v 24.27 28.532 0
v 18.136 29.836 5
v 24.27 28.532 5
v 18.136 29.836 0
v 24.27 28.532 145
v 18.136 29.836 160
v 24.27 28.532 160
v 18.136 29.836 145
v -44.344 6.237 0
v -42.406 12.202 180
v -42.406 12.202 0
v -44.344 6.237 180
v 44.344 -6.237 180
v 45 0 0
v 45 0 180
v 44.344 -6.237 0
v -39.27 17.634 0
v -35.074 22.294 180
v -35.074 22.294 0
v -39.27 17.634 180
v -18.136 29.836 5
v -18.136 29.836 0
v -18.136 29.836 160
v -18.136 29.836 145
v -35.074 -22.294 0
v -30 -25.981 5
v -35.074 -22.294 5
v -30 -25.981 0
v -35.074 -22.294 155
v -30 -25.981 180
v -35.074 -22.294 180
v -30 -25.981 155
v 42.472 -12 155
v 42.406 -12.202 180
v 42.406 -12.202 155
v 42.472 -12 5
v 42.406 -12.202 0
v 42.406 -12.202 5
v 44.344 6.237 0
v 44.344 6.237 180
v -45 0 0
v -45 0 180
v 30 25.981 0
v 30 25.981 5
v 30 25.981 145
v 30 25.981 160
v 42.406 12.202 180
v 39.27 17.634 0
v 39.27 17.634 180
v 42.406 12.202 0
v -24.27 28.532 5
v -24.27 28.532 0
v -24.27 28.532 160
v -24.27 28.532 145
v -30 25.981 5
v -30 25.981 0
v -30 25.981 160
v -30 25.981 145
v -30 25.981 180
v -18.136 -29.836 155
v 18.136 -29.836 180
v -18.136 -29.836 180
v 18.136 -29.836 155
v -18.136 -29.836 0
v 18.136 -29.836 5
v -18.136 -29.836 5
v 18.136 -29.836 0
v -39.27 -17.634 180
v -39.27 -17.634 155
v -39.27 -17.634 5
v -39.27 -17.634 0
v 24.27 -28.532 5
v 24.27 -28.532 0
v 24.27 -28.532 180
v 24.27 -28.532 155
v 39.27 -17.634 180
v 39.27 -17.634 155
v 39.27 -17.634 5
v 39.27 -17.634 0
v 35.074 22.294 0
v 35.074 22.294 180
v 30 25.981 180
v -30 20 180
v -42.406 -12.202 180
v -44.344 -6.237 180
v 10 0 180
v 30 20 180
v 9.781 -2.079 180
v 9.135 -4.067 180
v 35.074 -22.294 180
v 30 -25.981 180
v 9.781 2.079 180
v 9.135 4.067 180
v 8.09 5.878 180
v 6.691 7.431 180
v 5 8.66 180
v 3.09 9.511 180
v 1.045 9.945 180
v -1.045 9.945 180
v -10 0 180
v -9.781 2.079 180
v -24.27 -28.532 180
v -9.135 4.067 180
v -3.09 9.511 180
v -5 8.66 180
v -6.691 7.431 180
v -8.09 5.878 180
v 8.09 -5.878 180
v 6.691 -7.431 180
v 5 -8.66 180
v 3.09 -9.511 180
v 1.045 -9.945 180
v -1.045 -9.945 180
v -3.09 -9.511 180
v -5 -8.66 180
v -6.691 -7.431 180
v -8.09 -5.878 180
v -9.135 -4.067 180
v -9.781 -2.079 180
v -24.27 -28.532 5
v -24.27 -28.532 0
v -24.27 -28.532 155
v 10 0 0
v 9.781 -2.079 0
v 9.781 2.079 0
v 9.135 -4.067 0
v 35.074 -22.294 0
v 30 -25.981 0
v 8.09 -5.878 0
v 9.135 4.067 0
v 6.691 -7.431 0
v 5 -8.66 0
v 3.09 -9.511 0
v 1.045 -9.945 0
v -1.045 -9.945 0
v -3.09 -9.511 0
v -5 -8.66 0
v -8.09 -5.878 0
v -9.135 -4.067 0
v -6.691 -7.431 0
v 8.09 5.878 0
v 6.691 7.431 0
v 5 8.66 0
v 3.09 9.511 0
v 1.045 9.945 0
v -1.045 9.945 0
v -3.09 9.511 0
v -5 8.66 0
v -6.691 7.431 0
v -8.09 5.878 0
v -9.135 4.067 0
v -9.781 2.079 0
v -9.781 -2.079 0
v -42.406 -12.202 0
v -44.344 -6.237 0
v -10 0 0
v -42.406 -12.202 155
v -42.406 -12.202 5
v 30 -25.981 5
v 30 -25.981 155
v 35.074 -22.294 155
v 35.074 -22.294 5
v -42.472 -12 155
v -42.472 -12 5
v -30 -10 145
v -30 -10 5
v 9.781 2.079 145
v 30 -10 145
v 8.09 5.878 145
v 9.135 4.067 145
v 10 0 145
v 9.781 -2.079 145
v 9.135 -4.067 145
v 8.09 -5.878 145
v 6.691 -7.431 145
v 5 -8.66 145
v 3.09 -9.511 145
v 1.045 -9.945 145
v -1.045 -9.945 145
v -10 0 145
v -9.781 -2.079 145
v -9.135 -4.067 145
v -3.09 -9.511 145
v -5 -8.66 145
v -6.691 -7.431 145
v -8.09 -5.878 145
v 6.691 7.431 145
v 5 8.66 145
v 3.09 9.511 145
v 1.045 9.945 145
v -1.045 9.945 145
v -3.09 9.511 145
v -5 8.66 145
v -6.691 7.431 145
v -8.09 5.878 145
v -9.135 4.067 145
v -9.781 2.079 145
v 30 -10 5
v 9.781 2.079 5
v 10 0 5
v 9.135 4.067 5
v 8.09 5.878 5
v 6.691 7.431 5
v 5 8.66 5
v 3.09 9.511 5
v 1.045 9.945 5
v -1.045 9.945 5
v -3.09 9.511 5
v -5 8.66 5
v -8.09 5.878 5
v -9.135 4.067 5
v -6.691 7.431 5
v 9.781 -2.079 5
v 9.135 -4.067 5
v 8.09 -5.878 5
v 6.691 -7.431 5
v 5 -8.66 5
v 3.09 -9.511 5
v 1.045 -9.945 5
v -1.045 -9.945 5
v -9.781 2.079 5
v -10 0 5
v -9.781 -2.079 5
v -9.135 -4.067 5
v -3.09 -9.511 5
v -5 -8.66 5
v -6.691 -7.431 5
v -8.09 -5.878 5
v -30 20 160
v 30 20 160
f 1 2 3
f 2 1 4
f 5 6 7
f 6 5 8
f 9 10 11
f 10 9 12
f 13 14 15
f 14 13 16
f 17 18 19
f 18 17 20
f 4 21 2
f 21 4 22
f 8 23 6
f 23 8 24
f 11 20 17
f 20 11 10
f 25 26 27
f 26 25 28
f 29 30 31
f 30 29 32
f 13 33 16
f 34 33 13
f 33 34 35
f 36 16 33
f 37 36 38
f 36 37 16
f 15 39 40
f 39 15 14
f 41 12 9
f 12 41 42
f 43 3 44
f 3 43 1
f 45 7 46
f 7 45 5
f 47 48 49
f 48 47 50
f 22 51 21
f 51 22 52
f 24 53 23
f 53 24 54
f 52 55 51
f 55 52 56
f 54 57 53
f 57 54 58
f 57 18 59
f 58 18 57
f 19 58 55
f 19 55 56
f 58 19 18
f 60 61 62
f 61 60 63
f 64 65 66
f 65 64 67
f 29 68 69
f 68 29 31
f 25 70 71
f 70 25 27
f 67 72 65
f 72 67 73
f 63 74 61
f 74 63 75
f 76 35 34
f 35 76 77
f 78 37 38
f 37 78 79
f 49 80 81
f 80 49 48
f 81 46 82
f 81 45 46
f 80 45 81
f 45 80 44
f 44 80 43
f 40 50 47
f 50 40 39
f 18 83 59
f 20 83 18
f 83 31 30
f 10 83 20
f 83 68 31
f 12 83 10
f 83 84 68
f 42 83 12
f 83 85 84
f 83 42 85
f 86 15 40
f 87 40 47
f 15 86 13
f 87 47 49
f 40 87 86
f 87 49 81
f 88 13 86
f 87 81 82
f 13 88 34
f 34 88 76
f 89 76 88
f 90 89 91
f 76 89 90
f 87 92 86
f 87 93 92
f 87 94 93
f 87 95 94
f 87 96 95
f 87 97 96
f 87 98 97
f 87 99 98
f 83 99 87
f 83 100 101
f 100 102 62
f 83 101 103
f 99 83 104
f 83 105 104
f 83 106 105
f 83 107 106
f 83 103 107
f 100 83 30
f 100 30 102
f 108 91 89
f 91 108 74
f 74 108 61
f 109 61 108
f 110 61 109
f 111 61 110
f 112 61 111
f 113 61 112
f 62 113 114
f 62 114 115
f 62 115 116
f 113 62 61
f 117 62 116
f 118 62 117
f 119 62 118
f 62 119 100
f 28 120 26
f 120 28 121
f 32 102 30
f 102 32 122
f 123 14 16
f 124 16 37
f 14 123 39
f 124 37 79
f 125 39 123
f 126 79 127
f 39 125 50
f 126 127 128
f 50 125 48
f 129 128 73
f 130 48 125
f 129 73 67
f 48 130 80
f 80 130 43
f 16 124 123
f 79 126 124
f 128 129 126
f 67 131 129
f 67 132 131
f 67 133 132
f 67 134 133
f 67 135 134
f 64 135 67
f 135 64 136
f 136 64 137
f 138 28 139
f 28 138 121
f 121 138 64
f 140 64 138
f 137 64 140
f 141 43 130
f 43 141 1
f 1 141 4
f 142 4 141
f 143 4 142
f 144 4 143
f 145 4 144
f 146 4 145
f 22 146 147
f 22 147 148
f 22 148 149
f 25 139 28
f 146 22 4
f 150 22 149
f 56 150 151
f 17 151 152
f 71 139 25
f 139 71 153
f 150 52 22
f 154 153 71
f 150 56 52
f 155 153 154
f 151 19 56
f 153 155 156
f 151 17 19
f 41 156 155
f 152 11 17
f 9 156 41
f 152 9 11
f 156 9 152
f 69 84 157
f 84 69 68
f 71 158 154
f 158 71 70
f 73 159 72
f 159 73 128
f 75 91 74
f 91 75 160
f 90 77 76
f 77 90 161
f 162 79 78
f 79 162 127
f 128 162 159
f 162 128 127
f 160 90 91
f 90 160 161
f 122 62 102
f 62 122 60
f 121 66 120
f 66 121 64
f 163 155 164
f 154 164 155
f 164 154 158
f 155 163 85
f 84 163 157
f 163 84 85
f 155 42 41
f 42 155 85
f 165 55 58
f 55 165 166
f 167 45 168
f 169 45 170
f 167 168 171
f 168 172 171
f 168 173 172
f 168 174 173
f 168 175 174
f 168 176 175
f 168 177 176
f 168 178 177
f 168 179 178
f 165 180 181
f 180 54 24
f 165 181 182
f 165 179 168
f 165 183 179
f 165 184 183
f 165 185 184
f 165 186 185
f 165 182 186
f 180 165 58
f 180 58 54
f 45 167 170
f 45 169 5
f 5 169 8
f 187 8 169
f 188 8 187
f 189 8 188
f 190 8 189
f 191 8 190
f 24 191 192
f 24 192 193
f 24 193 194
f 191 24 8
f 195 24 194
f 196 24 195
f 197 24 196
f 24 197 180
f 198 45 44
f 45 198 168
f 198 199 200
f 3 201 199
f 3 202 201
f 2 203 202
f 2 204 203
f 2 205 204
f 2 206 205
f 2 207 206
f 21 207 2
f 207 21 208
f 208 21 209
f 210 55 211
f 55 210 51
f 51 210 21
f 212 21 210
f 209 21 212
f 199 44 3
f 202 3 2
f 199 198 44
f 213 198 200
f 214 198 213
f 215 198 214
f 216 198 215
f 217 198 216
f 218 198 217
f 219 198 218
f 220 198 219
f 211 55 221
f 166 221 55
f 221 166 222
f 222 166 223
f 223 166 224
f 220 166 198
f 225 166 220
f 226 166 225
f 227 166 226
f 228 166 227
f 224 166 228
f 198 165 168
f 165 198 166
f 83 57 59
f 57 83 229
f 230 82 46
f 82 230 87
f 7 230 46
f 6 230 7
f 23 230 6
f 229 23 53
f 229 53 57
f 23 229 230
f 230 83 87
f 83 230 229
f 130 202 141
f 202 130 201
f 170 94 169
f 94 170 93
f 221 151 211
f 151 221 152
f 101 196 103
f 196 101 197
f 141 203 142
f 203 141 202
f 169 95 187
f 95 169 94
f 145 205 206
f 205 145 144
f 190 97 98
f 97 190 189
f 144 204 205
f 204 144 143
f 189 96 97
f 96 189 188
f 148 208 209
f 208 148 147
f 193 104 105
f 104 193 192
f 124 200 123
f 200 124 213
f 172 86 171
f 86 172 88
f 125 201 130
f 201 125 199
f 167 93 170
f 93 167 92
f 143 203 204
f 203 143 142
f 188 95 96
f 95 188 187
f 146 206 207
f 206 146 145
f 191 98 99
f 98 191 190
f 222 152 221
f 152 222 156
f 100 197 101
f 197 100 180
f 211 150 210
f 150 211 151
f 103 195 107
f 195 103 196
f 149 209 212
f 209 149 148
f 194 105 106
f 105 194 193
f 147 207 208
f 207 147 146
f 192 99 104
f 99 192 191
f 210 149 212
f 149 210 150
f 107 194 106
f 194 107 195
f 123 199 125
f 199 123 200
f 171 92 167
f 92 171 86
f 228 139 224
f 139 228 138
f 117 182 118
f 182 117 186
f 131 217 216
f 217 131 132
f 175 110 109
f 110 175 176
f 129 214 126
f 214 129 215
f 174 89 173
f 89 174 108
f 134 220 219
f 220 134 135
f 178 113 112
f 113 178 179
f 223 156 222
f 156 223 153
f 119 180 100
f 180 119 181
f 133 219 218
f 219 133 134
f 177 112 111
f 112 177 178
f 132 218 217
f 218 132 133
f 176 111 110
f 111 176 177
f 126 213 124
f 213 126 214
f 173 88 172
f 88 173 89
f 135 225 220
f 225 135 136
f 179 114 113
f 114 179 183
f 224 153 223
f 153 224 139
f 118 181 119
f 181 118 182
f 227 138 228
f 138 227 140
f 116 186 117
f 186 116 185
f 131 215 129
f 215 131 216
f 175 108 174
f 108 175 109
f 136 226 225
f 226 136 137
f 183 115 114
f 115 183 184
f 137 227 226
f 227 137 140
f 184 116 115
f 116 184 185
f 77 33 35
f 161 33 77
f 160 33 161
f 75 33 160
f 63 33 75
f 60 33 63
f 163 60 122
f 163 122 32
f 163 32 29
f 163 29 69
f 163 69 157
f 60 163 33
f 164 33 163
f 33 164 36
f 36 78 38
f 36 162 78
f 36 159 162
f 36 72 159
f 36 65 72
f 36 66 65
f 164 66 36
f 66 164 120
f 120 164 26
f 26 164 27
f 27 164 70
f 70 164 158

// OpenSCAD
difference(){
    
    hull(){
        translate([15,0,0])
        cylinder(h=180, r=30, center=false);
        translate([-15,0,0])
        cylinder(h=180, r=30, center=false);
    }
    translate([-30,-10,5])
    cube([60,50,140]);
    translate([-30,20,160])
    cube([60,10,40]);
    cylinder(h=190, r=10);
    translate([-45,-30,5])
    cube([90,18,150]);
}
